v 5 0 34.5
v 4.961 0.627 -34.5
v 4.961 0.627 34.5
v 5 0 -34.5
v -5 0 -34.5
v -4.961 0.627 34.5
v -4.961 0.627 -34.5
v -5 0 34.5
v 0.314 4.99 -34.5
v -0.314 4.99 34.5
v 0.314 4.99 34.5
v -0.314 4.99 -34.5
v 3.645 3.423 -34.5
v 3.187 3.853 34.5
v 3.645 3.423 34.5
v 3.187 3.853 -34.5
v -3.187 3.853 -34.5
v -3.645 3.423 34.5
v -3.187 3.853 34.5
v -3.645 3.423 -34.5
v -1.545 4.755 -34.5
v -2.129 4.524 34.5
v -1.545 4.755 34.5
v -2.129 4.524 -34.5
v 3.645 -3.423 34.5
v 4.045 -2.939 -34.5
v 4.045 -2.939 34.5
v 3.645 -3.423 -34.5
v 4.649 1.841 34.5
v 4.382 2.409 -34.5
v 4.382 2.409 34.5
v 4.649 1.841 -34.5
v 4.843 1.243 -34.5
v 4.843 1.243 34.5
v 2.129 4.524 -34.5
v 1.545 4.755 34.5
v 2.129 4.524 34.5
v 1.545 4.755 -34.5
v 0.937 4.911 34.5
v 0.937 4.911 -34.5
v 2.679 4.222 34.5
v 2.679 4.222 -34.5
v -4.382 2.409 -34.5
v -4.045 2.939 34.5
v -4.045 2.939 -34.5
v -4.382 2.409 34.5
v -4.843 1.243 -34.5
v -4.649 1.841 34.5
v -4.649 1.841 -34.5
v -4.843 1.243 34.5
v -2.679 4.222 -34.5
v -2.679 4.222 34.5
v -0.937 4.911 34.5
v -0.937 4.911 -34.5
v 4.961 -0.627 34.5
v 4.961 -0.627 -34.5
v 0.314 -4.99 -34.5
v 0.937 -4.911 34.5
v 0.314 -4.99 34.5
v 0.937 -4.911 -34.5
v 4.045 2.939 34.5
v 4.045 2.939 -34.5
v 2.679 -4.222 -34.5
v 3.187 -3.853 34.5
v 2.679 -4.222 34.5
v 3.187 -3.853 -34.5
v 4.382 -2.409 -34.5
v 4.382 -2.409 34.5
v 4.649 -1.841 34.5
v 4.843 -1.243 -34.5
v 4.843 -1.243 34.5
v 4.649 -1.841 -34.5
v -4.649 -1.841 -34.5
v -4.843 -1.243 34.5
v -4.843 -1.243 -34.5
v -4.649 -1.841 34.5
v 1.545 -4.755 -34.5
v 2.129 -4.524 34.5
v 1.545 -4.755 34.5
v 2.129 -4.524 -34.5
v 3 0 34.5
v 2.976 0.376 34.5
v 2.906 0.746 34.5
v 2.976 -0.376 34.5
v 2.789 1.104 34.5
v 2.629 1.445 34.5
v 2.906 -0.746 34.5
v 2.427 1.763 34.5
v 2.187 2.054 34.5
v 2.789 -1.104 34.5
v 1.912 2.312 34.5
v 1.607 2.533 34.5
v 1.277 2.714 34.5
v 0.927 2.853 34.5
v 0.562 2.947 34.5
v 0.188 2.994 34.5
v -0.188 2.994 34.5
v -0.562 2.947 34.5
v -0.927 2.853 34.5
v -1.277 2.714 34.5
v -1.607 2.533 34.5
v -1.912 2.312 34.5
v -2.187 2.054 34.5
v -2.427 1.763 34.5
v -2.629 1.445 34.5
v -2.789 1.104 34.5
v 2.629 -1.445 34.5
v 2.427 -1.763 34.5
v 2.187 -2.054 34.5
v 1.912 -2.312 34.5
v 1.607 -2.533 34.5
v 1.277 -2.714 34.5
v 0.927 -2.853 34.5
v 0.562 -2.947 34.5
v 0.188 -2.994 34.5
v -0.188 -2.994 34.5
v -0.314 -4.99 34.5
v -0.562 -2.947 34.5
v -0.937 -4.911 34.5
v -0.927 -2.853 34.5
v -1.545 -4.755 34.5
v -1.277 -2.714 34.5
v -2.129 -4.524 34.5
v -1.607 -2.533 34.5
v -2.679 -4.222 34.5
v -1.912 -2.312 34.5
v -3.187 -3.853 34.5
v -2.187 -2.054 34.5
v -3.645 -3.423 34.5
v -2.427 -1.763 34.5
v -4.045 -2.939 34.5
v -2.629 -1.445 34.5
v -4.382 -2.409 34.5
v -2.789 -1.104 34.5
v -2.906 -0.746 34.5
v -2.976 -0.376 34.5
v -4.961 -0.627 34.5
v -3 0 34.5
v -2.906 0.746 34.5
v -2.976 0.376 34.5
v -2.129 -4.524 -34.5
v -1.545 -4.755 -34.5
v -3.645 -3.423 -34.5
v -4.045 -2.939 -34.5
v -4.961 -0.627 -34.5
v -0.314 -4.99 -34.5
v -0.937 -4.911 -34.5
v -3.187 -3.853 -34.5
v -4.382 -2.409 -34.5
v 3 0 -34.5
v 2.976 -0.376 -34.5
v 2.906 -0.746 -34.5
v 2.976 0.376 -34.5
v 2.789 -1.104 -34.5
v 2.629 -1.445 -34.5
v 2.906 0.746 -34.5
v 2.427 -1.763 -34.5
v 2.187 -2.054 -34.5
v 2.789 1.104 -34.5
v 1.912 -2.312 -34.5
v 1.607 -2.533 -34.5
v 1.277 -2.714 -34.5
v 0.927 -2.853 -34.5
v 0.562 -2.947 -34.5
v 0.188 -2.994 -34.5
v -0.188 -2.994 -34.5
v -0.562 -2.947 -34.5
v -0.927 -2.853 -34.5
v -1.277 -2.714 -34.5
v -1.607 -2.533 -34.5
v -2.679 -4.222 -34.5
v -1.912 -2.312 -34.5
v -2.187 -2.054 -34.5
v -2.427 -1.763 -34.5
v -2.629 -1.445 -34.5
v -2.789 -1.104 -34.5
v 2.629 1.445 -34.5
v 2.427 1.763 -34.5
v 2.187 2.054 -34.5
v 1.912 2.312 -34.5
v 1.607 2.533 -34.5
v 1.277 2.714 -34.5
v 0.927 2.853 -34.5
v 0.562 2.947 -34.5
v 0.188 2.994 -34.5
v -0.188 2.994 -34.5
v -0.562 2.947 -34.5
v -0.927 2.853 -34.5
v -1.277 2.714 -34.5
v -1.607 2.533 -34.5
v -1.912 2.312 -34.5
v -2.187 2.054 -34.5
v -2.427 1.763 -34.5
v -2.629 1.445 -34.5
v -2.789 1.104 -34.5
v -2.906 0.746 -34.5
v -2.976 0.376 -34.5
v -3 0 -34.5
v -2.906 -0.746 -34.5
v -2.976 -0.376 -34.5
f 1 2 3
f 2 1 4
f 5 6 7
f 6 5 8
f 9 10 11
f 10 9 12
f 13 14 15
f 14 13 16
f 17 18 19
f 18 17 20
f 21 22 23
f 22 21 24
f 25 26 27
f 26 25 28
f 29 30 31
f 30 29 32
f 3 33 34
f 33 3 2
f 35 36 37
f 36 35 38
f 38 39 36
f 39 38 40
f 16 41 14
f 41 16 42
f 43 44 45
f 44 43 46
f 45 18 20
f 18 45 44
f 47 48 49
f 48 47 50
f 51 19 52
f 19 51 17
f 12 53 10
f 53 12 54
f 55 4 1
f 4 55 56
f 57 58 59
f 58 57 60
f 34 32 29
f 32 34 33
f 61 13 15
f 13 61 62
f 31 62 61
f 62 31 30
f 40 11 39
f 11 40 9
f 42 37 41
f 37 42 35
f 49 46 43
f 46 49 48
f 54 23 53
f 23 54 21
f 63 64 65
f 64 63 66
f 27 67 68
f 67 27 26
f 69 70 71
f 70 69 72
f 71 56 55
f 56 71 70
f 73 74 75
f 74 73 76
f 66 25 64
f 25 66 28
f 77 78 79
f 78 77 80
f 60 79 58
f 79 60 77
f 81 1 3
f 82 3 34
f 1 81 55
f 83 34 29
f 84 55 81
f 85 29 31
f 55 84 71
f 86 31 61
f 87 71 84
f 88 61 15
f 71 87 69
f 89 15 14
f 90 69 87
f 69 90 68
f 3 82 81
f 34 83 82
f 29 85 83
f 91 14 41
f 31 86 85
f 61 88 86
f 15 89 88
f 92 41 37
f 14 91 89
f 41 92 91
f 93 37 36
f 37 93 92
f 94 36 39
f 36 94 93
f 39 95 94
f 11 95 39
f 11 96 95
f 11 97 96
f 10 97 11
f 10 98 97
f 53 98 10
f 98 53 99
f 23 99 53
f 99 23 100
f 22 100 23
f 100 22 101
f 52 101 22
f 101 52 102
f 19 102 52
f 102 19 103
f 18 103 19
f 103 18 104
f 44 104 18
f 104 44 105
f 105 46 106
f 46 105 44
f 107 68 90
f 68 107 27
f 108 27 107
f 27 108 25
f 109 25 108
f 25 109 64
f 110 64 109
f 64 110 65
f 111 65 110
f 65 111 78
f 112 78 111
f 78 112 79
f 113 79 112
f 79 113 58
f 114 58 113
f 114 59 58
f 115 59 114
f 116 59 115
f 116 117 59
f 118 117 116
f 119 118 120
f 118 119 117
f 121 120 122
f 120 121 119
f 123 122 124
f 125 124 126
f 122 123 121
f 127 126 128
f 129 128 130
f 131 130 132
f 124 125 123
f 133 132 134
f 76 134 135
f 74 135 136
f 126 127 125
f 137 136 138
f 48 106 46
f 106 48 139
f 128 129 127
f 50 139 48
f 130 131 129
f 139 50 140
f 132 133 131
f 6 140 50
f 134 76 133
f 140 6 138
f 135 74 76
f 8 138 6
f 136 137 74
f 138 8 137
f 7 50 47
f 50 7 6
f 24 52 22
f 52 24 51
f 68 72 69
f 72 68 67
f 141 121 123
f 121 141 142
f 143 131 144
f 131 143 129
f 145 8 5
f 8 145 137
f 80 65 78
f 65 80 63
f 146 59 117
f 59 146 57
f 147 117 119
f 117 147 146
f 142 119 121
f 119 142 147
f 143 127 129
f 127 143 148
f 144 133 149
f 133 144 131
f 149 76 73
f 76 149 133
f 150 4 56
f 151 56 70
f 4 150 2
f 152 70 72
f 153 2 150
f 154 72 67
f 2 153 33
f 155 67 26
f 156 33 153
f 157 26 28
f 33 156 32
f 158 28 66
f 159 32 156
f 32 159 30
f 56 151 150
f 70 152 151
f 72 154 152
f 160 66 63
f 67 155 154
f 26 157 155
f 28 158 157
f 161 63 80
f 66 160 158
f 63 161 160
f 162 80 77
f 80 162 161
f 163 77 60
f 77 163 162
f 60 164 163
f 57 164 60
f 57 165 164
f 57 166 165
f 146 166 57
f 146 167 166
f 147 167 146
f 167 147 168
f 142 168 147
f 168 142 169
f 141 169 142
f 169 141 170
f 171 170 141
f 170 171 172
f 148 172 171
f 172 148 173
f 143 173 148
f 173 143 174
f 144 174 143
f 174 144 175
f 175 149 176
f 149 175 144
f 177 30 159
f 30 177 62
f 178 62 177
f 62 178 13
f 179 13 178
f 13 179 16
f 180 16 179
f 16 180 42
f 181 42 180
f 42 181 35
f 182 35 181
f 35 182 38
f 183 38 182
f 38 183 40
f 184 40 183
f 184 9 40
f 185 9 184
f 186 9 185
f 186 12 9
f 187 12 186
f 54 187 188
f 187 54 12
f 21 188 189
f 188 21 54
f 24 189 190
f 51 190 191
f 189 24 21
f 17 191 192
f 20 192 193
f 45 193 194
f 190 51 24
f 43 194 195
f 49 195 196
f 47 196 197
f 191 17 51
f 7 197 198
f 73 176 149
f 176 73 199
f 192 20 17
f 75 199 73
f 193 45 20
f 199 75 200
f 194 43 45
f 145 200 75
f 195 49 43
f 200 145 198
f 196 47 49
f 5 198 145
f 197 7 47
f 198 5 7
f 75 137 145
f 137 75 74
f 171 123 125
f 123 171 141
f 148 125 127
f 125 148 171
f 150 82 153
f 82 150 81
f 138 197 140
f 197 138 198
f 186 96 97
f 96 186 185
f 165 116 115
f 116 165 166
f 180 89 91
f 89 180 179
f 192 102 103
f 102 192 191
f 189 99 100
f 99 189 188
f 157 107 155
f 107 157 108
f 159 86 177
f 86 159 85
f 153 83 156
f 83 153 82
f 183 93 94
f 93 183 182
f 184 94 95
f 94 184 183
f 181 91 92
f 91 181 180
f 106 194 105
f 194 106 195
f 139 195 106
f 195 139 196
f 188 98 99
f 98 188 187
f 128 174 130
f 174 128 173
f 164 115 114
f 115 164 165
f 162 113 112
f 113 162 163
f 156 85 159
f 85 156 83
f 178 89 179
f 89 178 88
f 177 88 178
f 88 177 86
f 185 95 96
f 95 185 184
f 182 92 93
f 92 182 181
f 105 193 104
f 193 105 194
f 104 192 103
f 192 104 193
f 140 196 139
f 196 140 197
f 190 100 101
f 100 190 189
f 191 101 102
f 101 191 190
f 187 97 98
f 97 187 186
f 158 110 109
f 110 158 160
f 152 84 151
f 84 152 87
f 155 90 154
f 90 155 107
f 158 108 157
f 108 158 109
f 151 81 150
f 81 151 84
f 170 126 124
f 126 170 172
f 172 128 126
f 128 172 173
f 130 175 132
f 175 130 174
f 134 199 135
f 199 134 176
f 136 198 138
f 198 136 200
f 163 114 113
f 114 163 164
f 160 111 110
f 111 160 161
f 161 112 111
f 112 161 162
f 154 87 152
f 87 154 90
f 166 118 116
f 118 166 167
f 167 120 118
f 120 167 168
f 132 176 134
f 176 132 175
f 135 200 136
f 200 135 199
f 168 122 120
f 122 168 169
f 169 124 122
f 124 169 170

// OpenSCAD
$fn = 50;


difference() {
	union() {
		translate(v = [0, 0, -34.5000000000]) {
			cylinder(h = 69, r = 5.0000000000);
		}
	}
	union() {
		translate(v = [0, 0, -100.0000000000]) {
			cylinder(h = 200, r = 3.0000000000);
		}
	}
}
